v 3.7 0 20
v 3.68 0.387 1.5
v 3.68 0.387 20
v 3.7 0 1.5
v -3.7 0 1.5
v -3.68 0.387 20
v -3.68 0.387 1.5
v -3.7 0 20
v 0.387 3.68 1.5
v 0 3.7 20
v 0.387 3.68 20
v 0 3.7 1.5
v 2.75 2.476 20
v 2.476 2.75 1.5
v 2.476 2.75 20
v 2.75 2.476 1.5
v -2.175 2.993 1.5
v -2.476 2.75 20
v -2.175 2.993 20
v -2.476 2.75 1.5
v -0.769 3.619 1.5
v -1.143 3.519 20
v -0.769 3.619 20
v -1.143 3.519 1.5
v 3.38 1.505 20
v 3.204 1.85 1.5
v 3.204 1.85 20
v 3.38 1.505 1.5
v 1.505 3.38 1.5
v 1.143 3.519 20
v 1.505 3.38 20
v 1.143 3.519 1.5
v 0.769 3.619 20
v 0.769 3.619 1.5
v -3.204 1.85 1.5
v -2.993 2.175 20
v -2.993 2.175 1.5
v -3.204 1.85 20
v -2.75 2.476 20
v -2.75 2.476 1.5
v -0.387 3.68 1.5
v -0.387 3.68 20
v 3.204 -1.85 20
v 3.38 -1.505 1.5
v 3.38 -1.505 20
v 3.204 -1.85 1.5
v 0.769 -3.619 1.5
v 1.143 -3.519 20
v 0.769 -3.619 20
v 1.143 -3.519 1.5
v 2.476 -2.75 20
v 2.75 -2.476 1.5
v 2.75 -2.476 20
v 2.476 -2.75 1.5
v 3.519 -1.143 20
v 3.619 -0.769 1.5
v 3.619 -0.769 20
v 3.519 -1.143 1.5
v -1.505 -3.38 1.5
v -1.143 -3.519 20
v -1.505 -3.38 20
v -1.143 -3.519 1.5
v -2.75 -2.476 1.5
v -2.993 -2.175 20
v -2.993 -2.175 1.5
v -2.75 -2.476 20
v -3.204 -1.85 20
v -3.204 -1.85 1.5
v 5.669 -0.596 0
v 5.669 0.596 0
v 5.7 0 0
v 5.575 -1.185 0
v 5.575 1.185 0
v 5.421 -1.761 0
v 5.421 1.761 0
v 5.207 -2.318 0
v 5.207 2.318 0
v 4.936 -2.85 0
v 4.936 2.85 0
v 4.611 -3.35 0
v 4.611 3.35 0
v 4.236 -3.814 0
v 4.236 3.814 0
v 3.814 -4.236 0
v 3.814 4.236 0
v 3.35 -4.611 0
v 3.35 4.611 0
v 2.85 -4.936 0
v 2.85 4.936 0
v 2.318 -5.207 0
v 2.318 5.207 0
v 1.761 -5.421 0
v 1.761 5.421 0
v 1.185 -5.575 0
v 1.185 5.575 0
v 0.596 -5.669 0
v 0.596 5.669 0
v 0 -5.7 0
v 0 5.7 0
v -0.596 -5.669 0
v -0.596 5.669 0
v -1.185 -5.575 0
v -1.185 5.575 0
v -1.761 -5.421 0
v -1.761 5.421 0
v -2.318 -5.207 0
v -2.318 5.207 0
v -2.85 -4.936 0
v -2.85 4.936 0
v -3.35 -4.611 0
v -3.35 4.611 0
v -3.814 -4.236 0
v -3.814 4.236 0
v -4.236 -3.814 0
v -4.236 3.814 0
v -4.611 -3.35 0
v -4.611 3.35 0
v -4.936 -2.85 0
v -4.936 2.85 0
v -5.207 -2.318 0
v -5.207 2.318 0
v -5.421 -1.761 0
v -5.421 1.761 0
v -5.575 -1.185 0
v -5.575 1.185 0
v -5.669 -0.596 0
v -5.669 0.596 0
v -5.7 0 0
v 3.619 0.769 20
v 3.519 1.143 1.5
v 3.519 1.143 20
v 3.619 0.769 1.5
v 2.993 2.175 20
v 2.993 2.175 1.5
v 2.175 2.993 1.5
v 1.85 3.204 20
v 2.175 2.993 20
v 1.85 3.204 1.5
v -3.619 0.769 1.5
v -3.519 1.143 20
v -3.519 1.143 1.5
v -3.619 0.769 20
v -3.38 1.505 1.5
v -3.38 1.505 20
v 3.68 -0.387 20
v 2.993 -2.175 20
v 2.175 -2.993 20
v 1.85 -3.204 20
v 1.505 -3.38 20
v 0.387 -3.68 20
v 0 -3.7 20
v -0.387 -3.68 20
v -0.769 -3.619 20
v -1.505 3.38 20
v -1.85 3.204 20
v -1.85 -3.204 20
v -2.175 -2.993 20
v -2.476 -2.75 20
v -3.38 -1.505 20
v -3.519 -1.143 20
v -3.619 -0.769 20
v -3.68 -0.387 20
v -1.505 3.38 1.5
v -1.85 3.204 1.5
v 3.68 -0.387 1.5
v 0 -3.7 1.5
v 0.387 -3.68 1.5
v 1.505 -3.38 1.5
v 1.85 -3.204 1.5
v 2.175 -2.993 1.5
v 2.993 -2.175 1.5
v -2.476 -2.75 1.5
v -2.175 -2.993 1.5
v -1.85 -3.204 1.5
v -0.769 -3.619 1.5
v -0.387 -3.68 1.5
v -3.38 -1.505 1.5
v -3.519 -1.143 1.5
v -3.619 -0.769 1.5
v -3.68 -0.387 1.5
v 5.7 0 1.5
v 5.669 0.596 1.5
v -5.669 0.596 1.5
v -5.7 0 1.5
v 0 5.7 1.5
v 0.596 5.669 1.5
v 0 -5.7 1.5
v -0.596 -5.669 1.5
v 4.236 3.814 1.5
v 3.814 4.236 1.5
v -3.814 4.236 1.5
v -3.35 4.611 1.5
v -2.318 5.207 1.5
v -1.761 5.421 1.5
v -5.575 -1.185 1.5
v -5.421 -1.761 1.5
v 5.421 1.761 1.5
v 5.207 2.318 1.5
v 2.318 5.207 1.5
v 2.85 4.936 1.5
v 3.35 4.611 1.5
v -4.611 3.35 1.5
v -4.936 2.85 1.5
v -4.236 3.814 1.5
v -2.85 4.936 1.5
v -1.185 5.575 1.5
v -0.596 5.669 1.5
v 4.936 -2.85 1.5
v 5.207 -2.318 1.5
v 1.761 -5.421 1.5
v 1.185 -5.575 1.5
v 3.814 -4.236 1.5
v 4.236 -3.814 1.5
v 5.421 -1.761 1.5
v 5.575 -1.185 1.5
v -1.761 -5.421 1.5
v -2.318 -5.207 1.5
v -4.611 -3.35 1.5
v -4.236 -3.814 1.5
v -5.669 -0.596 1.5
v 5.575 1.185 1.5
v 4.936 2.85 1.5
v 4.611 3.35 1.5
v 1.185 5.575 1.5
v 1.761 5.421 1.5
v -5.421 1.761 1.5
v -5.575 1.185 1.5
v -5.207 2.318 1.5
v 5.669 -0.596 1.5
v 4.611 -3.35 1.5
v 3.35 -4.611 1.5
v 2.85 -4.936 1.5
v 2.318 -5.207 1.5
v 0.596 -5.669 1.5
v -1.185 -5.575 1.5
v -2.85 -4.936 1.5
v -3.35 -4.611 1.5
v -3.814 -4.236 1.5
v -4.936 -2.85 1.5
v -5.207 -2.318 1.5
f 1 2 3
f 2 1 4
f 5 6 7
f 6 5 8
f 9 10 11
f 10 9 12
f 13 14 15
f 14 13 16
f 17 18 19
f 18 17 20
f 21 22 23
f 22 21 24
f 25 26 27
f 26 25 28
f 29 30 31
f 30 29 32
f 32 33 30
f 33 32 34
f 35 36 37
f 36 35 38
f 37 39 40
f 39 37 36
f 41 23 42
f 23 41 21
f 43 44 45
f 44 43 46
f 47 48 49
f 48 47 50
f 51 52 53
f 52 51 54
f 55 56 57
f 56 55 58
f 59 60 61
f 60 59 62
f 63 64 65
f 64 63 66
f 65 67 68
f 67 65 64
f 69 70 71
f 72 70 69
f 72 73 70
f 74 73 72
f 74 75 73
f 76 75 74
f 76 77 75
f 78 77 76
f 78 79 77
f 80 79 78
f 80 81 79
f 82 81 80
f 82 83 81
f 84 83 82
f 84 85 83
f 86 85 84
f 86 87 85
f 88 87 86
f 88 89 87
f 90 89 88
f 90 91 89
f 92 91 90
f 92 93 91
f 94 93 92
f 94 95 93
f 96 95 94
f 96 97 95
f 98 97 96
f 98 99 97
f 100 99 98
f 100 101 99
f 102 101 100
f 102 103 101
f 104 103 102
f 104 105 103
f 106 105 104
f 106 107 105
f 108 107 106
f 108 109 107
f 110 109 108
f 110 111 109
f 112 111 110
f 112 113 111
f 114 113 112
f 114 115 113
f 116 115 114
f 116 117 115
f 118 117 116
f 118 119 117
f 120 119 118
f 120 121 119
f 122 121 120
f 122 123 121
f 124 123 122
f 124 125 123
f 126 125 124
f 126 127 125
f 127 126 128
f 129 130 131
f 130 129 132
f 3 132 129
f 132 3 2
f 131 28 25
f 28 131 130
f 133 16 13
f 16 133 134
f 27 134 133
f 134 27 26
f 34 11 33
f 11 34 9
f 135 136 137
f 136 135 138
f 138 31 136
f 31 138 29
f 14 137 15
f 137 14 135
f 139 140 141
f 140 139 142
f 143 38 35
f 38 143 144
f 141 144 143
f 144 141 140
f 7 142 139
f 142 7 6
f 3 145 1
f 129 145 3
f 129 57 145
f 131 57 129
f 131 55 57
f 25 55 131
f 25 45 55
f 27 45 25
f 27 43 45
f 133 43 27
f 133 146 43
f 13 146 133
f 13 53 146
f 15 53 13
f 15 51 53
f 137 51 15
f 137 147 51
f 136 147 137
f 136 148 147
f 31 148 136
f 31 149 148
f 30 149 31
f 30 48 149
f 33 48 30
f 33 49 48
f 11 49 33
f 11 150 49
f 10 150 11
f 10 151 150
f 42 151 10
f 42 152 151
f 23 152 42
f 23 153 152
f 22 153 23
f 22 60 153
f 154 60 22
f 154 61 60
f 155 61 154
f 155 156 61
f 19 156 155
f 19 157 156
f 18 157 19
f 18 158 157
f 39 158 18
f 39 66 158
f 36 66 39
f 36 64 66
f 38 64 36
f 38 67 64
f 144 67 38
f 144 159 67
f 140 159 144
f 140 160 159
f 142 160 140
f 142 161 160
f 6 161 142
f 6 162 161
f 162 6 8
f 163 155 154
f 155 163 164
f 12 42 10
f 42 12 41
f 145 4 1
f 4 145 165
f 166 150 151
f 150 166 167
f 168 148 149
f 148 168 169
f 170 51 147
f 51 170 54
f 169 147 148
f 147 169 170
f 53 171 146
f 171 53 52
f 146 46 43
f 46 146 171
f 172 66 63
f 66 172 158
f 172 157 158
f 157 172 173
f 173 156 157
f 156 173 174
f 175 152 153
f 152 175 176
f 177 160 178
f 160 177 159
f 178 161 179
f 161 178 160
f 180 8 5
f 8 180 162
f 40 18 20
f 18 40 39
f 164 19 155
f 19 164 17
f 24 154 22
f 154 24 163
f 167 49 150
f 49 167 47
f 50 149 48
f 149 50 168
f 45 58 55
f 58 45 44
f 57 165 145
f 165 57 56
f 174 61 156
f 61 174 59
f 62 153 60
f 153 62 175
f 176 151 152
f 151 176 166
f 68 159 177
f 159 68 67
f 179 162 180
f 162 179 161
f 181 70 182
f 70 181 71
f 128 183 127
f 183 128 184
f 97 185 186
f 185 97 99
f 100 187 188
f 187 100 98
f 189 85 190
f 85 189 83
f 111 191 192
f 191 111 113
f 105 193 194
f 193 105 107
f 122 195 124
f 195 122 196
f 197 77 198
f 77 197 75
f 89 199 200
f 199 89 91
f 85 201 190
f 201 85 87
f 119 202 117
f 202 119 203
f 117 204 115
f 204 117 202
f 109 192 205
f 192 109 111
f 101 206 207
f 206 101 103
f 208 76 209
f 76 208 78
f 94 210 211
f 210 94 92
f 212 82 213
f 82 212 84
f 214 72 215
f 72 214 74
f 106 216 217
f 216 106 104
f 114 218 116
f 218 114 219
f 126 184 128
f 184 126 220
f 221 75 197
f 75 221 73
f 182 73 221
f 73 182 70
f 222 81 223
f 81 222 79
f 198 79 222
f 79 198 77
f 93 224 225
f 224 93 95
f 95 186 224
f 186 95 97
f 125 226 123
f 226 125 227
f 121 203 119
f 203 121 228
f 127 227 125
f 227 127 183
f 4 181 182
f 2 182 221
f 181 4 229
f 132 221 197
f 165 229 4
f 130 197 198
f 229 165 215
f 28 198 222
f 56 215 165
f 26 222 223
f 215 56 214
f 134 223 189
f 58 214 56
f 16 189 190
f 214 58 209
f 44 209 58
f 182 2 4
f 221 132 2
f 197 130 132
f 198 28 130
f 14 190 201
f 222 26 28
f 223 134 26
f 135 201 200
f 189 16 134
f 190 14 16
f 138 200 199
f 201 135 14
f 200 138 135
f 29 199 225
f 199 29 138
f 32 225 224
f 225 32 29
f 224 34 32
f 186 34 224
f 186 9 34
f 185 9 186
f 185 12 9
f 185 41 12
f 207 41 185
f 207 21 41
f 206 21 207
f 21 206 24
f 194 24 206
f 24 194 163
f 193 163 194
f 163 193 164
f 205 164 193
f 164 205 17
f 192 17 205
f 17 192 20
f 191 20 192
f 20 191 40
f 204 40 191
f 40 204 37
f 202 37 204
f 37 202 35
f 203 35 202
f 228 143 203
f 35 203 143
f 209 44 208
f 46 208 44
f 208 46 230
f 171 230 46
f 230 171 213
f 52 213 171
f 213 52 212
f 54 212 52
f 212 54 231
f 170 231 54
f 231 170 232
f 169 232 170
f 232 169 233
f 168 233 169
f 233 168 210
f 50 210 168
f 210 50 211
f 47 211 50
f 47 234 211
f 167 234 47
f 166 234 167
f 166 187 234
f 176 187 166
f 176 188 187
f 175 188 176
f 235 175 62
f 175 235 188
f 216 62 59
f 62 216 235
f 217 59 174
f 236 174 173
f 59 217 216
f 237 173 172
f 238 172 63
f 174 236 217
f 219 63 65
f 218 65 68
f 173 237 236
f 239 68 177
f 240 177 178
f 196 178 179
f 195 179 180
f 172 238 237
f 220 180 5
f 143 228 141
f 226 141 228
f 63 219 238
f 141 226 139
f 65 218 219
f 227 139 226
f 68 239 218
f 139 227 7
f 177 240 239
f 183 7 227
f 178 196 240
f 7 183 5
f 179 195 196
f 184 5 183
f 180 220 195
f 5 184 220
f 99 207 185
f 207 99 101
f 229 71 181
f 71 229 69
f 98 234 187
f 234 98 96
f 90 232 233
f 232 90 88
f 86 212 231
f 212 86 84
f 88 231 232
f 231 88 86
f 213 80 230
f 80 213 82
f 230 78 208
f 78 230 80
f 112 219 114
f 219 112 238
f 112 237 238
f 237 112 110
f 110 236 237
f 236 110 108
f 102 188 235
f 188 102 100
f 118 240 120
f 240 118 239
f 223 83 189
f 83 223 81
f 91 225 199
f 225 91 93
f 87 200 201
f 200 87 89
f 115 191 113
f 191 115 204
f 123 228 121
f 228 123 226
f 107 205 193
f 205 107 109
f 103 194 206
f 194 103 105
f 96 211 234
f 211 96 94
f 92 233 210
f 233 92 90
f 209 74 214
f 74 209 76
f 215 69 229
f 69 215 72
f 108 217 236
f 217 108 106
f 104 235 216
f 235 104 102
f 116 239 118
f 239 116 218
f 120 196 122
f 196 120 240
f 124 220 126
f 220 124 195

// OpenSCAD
$fa = 6;
$fs = 0.4/2;
cylinder(20, 7.4/2, 7.4/2);
cylinder(1.5, 7.4/2+2, 7.4/2+2);
